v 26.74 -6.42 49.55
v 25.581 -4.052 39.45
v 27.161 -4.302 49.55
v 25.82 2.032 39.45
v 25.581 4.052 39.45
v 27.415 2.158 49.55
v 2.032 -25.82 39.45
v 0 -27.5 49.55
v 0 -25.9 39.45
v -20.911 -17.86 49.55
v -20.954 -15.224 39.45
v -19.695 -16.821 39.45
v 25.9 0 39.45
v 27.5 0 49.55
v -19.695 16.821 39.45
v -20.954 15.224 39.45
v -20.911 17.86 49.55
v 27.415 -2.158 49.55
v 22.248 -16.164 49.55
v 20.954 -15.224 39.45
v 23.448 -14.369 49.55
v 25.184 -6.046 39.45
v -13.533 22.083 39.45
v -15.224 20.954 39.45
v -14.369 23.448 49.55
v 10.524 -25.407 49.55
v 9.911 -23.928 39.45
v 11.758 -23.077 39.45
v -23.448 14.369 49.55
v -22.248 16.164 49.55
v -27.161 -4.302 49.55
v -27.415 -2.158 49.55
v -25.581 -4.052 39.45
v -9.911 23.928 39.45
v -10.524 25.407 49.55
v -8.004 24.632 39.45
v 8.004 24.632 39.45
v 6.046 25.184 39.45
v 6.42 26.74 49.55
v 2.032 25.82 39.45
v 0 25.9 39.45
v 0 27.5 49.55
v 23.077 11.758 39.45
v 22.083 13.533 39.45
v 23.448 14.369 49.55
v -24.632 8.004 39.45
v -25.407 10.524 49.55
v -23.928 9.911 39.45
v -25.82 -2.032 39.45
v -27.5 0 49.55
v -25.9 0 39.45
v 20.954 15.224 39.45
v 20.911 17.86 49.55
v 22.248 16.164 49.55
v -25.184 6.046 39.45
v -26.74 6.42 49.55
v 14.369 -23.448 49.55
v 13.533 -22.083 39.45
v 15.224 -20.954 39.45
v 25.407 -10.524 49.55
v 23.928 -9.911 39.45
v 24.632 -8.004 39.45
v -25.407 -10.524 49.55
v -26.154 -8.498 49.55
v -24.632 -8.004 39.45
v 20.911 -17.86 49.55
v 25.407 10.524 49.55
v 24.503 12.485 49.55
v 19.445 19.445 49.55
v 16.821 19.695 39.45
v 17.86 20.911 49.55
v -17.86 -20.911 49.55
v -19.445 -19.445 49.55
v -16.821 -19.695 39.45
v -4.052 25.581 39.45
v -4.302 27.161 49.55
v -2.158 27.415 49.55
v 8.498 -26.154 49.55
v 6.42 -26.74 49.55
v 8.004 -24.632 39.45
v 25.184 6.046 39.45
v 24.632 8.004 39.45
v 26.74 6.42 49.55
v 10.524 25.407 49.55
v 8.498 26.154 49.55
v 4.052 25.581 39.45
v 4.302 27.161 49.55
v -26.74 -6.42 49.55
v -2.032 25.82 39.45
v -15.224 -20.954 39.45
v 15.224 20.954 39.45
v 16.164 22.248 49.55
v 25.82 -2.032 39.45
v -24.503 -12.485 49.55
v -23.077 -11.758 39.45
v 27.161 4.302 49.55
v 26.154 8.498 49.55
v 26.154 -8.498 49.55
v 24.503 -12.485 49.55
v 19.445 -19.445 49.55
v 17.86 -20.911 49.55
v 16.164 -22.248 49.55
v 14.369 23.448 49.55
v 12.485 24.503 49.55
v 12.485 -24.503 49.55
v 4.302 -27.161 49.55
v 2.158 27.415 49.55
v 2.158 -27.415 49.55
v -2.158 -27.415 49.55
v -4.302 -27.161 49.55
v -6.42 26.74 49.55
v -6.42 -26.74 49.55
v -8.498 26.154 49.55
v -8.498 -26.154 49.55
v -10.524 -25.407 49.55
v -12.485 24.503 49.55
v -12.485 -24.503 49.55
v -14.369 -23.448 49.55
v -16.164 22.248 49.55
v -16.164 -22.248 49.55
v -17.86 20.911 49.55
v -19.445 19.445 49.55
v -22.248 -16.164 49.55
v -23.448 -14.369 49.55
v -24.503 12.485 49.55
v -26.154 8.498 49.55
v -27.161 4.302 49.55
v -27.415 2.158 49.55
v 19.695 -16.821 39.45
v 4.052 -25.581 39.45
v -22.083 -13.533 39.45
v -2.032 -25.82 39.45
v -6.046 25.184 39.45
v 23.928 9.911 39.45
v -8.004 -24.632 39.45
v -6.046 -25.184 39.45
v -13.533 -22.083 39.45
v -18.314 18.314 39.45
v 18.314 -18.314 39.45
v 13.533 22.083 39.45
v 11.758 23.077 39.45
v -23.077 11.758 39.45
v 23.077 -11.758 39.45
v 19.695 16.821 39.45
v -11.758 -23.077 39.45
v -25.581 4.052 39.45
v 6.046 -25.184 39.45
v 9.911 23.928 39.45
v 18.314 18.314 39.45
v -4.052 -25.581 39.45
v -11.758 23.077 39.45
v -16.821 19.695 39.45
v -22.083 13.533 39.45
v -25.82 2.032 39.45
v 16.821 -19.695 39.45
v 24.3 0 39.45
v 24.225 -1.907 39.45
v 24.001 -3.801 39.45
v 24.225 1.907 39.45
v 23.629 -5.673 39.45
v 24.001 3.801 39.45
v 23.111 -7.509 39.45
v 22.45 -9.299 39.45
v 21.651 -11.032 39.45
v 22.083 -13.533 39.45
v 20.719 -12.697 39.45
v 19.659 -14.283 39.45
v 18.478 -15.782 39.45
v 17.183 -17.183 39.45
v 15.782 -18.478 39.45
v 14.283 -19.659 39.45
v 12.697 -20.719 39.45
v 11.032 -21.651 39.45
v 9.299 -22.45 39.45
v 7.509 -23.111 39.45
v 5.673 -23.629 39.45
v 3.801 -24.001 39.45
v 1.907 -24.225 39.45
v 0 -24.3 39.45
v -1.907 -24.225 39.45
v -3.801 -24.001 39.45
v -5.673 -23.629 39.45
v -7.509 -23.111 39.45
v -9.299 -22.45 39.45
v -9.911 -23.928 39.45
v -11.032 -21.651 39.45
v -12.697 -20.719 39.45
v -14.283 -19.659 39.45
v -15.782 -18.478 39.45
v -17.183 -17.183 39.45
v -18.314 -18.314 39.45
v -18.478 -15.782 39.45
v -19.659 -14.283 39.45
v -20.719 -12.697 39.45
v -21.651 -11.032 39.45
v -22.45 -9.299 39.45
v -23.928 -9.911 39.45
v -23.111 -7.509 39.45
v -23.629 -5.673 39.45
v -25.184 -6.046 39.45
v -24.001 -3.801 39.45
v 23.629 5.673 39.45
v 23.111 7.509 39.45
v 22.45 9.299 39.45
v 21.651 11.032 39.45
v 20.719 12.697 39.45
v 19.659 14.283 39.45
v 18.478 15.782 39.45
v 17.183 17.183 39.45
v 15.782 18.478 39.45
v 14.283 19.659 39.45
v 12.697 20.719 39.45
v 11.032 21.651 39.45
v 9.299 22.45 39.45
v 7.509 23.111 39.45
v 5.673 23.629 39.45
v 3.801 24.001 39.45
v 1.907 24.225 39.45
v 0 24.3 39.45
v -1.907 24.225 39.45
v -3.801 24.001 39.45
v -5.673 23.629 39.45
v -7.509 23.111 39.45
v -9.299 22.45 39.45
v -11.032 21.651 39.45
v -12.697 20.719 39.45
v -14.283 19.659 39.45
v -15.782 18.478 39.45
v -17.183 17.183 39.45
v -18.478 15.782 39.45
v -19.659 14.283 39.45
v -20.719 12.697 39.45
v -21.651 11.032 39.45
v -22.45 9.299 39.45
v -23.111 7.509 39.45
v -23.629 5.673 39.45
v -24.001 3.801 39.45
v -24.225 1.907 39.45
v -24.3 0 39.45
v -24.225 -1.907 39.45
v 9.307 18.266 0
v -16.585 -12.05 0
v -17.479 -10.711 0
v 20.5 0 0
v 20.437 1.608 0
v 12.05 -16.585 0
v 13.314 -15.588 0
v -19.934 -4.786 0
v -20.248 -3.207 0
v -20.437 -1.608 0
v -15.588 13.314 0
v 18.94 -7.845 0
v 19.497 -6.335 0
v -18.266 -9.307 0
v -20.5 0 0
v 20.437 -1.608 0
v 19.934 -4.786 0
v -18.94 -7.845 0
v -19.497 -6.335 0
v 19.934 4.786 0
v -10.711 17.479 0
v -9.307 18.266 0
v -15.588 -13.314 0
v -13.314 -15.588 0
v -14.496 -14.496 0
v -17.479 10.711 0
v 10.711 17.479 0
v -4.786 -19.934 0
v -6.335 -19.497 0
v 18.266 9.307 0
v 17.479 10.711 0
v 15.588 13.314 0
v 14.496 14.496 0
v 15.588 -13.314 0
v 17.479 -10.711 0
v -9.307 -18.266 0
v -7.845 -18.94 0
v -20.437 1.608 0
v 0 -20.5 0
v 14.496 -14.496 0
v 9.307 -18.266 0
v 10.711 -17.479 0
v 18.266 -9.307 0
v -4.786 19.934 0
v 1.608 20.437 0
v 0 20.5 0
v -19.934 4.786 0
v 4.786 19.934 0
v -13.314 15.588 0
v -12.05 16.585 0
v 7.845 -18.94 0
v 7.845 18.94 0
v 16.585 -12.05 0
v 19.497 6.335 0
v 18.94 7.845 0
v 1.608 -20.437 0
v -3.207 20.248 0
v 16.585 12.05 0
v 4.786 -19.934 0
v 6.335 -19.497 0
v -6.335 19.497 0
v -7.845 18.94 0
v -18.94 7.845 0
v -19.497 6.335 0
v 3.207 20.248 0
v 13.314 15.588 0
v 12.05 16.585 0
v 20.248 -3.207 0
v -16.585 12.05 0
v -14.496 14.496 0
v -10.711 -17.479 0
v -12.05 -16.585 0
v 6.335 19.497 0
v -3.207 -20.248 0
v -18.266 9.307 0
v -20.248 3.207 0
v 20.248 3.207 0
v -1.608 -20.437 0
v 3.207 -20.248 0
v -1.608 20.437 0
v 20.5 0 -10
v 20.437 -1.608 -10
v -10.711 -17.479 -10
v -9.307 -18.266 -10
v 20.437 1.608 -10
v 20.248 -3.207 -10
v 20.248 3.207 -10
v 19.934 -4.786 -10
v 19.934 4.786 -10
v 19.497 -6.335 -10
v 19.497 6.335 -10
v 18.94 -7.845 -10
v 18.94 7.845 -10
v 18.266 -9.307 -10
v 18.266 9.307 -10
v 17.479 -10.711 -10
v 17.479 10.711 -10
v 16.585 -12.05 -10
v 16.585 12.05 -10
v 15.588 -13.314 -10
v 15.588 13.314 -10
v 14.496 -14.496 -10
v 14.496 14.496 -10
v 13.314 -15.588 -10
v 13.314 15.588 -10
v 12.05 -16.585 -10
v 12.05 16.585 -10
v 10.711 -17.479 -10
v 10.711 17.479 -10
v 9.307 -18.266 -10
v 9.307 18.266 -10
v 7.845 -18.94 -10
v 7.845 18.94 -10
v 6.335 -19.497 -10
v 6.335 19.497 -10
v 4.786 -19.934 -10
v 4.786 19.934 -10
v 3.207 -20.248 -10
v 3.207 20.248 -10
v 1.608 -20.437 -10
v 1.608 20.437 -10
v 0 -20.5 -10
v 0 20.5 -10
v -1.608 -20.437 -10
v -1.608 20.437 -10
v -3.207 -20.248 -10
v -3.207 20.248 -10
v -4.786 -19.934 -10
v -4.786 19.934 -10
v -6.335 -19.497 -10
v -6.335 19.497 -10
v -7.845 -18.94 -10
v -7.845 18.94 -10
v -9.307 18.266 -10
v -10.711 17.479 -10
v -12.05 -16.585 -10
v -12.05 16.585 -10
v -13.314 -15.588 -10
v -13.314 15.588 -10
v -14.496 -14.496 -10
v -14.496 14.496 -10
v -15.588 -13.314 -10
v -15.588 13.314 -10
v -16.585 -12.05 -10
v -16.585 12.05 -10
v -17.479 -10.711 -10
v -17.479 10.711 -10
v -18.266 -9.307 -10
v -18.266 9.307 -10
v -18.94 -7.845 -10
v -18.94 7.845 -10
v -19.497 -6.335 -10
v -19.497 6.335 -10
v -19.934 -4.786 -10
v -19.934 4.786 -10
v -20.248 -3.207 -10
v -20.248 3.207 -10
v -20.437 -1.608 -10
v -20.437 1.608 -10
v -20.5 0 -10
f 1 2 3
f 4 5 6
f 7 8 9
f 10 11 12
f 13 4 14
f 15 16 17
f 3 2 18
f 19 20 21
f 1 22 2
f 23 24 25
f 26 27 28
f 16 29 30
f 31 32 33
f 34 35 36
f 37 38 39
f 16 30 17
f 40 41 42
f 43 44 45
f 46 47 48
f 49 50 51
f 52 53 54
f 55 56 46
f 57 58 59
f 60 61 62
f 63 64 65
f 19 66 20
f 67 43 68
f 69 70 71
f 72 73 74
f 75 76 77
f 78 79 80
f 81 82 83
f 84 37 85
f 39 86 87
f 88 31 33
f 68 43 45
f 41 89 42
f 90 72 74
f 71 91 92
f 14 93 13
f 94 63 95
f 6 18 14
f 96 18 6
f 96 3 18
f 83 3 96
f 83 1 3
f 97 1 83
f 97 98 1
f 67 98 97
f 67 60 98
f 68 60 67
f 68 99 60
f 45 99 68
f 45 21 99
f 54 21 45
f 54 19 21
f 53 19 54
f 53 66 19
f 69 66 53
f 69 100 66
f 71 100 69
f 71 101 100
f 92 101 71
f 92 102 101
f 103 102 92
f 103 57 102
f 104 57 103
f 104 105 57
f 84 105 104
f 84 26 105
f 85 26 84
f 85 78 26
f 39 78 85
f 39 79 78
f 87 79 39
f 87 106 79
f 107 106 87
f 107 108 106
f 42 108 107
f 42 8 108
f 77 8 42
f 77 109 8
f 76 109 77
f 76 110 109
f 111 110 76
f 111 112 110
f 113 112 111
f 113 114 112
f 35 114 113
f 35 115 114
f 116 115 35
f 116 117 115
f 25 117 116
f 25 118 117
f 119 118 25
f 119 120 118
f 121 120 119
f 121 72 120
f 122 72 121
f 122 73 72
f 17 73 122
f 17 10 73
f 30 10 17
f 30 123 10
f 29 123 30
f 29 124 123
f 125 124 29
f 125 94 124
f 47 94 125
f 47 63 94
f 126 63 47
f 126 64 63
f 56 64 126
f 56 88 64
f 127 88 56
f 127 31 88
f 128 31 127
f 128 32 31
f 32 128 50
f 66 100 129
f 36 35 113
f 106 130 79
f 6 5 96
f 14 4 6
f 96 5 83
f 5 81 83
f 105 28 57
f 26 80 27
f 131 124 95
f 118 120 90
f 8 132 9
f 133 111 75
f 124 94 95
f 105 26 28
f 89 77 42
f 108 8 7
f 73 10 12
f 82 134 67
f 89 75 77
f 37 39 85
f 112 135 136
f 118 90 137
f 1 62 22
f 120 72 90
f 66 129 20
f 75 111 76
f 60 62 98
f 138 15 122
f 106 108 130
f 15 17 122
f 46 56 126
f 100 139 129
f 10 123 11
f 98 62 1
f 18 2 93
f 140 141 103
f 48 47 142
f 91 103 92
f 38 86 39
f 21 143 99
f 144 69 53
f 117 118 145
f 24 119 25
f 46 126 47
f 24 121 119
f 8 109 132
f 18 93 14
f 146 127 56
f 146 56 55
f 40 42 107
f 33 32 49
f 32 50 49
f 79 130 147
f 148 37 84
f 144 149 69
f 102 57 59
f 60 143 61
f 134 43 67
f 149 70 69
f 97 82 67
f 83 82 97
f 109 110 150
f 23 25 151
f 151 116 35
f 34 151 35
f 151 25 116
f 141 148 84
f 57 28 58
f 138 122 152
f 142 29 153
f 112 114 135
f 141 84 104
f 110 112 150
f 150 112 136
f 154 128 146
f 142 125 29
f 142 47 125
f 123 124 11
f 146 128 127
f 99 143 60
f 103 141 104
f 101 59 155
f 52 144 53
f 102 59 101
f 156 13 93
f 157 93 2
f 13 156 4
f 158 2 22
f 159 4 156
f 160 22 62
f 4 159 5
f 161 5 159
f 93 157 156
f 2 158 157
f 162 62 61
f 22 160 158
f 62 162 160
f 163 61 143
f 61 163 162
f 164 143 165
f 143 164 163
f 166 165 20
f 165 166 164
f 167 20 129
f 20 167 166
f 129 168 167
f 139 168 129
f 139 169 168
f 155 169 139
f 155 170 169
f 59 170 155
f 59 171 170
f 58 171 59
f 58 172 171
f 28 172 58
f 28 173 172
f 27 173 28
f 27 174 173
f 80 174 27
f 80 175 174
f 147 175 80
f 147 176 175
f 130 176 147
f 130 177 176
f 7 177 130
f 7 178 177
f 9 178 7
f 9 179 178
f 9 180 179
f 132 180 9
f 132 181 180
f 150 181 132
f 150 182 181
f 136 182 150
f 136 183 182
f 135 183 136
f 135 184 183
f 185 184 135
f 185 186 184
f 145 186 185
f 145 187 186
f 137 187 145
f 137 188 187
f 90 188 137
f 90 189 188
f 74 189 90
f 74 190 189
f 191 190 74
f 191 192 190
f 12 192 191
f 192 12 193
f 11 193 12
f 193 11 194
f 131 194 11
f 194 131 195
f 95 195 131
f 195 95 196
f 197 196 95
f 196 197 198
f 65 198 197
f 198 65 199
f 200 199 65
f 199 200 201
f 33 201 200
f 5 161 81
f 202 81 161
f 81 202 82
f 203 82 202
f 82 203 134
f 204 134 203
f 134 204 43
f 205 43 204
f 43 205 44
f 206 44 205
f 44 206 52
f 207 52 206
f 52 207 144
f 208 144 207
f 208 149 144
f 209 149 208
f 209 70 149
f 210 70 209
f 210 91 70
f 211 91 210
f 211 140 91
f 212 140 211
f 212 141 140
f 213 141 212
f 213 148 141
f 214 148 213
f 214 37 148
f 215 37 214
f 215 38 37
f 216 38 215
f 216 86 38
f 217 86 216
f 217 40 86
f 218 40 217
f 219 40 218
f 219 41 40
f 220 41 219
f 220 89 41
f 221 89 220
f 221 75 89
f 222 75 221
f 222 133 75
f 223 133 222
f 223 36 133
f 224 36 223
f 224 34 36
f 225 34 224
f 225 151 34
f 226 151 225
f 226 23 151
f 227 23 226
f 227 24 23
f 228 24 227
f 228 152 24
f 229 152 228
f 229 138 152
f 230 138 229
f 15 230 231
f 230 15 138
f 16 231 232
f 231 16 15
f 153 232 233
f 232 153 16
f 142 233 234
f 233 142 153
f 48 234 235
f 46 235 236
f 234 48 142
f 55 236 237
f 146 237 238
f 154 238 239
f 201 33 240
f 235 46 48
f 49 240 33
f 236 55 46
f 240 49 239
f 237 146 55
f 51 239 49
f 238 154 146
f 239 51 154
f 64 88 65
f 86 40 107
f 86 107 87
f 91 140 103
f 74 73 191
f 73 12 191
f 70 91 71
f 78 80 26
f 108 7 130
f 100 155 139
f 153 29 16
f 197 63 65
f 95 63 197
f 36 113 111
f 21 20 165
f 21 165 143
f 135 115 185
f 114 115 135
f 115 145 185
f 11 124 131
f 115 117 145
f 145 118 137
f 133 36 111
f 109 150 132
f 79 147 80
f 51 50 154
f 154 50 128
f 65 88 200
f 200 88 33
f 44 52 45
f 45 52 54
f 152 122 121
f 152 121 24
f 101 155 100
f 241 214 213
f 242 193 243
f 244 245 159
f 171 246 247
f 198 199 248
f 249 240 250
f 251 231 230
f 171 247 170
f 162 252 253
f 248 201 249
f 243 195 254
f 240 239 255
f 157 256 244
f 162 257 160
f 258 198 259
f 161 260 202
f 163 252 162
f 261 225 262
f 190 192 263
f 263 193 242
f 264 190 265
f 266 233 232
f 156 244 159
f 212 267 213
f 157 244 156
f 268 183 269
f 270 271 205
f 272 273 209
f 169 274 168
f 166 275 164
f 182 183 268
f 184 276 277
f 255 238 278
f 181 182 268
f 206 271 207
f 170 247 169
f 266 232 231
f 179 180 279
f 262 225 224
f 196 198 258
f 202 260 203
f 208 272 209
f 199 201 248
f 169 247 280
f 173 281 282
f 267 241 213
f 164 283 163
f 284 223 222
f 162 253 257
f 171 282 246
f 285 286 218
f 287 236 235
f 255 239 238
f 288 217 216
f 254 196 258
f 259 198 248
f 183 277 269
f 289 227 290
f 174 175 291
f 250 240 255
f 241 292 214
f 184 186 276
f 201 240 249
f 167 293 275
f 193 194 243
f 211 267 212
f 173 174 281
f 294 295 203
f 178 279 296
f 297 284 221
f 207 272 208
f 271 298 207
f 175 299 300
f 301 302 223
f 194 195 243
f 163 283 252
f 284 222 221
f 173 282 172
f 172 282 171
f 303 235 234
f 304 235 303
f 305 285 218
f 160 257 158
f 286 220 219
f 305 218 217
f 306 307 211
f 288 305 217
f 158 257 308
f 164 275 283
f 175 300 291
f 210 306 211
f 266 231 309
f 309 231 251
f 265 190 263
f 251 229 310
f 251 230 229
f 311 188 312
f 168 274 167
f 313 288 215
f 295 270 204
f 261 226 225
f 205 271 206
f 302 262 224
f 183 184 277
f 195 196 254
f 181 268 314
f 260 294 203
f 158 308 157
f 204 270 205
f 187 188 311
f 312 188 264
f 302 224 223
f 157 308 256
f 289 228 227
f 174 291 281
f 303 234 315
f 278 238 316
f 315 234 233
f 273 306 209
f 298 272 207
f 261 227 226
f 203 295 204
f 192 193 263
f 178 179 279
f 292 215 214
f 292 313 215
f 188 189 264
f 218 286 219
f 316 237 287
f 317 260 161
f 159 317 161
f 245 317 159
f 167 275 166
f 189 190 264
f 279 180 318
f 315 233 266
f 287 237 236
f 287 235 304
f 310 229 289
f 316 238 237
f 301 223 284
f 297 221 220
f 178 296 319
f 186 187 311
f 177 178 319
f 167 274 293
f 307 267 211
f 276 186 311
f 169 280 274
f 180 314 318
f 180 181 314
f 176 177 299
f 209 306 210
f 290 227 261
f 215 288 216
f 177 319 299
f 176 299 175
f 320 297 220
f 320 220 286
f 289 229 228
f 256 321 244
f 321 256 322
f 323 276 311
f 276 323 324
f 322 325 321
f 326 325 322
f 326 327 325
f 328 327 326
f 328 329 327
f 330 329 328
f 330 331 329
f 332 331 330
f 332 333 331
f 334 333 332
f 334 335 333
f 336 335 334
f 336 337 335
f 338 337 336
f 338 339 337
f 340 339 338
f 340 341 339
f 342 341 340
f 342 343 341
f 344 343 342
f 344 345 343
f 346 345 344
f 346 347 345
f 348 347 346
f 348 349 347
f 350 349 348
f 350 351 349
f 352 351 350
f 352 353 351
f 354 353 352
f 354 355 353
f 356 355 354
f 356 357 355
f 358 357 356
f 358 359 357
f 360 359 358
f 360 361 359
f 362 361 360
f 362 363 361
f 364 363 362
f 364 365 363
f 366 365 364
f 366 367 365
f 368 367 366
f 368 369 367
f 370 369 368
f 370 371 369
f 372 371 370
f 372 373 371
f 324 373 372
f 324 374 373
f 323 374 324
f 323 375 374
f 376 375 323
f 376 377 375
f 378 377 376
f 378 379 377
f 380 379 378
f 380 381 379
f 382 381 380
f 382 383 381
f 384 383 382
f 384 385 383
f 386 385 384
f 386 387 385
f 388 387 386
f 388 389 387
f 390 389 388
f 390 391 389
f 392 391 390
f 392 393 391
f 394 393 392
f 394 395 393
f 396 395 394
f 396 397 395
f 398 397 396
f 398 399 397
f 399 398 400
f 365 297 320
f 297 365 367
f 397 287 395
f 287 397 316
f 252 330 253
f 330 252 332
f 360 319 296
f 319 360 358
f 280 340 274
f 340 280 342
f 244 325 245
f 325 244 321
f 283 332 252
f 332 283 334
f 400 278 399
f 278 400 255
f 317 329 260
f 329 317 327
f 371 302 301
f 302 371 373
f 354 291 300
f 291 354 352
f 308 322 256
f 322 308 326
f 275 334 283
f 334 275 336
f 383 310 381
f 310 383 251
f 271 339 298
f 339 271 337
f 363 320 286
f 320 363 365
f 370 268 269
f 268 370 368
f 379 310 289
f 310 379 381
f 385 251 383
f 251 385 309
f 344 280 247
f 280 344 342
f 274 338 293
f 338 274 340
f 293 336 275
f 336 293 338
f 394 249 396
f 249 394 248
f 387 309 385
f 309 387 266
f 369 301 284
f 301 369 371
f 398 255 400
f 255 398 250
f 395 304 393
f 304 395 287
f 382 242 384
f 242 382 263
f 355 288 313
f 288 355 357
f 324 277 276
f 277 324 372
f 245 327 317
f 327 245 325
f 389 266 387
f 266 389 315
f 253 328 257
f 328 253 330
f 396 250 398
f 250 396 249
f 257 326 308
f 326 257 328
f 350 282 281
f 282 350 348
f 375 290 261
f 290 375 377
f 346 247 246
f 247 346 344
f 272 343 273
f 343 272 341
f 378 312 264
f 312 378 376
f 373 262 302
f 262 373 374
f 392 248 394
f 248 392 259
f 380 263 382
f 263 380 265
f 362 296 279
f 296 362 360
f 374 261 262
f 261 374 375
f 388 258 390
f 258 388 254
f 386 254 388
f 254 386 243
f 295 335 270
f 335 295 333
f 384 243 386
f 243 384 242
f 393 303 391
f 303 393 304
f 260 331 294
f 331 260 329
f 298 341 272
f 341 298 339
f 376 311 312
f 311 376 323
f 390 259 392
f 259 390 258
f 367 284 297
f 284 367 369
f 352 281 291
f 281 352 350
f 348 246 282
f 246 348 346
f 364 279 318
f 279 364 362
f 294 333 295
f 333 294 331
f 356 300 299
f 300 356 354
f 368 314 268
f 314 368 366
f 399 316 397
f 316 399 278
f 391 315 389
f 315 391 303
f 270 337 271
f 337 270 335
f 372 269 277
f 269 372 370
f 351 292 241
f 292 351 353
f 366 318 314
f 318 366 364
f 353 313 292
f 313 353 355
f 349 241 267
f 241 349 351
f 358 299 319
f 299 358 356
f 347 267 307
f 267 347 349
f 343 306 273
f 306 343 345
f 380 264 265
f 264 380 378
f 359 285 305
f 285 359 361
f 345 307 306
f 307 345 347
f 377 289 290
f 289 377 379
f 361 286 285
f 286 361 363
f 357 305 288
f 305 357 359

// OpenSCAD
//  _______________________
// ^\                     /<- d4
// | \                   /
// |  "\               /"  <- d3
// h2 ^ \             /    <- d2
// |  h1 \           /
// |  |   \         /      <- d1 
// v  v    """""""""
// 
module pot(d1, d2, d3, d4, h1, h2, space_below=10, slack=1) {
    union() {
        translate([0, 0, h1+slack])
        linear_extrude(height=h2-h1+slack, scale=(d4+slack)/(d3+slack))
        circle(d=d3+slack);
        
        linear_extrude(height=h1+slack, scale=(d2+slack)/(d1+slack))
        circle(d=d1+slack);
        
        translate([0, 0, -space_below])
        linear_extrude(height=space_below)
        circle(d=d1+slack);
    }
}

$fn=80;
d1=40;
d2=47.6;
d3=50.8;
d4=54;
h1=47.55-9.1;
h2=47.55;
pot(d1, d2, d3, d4, h1, h2);
